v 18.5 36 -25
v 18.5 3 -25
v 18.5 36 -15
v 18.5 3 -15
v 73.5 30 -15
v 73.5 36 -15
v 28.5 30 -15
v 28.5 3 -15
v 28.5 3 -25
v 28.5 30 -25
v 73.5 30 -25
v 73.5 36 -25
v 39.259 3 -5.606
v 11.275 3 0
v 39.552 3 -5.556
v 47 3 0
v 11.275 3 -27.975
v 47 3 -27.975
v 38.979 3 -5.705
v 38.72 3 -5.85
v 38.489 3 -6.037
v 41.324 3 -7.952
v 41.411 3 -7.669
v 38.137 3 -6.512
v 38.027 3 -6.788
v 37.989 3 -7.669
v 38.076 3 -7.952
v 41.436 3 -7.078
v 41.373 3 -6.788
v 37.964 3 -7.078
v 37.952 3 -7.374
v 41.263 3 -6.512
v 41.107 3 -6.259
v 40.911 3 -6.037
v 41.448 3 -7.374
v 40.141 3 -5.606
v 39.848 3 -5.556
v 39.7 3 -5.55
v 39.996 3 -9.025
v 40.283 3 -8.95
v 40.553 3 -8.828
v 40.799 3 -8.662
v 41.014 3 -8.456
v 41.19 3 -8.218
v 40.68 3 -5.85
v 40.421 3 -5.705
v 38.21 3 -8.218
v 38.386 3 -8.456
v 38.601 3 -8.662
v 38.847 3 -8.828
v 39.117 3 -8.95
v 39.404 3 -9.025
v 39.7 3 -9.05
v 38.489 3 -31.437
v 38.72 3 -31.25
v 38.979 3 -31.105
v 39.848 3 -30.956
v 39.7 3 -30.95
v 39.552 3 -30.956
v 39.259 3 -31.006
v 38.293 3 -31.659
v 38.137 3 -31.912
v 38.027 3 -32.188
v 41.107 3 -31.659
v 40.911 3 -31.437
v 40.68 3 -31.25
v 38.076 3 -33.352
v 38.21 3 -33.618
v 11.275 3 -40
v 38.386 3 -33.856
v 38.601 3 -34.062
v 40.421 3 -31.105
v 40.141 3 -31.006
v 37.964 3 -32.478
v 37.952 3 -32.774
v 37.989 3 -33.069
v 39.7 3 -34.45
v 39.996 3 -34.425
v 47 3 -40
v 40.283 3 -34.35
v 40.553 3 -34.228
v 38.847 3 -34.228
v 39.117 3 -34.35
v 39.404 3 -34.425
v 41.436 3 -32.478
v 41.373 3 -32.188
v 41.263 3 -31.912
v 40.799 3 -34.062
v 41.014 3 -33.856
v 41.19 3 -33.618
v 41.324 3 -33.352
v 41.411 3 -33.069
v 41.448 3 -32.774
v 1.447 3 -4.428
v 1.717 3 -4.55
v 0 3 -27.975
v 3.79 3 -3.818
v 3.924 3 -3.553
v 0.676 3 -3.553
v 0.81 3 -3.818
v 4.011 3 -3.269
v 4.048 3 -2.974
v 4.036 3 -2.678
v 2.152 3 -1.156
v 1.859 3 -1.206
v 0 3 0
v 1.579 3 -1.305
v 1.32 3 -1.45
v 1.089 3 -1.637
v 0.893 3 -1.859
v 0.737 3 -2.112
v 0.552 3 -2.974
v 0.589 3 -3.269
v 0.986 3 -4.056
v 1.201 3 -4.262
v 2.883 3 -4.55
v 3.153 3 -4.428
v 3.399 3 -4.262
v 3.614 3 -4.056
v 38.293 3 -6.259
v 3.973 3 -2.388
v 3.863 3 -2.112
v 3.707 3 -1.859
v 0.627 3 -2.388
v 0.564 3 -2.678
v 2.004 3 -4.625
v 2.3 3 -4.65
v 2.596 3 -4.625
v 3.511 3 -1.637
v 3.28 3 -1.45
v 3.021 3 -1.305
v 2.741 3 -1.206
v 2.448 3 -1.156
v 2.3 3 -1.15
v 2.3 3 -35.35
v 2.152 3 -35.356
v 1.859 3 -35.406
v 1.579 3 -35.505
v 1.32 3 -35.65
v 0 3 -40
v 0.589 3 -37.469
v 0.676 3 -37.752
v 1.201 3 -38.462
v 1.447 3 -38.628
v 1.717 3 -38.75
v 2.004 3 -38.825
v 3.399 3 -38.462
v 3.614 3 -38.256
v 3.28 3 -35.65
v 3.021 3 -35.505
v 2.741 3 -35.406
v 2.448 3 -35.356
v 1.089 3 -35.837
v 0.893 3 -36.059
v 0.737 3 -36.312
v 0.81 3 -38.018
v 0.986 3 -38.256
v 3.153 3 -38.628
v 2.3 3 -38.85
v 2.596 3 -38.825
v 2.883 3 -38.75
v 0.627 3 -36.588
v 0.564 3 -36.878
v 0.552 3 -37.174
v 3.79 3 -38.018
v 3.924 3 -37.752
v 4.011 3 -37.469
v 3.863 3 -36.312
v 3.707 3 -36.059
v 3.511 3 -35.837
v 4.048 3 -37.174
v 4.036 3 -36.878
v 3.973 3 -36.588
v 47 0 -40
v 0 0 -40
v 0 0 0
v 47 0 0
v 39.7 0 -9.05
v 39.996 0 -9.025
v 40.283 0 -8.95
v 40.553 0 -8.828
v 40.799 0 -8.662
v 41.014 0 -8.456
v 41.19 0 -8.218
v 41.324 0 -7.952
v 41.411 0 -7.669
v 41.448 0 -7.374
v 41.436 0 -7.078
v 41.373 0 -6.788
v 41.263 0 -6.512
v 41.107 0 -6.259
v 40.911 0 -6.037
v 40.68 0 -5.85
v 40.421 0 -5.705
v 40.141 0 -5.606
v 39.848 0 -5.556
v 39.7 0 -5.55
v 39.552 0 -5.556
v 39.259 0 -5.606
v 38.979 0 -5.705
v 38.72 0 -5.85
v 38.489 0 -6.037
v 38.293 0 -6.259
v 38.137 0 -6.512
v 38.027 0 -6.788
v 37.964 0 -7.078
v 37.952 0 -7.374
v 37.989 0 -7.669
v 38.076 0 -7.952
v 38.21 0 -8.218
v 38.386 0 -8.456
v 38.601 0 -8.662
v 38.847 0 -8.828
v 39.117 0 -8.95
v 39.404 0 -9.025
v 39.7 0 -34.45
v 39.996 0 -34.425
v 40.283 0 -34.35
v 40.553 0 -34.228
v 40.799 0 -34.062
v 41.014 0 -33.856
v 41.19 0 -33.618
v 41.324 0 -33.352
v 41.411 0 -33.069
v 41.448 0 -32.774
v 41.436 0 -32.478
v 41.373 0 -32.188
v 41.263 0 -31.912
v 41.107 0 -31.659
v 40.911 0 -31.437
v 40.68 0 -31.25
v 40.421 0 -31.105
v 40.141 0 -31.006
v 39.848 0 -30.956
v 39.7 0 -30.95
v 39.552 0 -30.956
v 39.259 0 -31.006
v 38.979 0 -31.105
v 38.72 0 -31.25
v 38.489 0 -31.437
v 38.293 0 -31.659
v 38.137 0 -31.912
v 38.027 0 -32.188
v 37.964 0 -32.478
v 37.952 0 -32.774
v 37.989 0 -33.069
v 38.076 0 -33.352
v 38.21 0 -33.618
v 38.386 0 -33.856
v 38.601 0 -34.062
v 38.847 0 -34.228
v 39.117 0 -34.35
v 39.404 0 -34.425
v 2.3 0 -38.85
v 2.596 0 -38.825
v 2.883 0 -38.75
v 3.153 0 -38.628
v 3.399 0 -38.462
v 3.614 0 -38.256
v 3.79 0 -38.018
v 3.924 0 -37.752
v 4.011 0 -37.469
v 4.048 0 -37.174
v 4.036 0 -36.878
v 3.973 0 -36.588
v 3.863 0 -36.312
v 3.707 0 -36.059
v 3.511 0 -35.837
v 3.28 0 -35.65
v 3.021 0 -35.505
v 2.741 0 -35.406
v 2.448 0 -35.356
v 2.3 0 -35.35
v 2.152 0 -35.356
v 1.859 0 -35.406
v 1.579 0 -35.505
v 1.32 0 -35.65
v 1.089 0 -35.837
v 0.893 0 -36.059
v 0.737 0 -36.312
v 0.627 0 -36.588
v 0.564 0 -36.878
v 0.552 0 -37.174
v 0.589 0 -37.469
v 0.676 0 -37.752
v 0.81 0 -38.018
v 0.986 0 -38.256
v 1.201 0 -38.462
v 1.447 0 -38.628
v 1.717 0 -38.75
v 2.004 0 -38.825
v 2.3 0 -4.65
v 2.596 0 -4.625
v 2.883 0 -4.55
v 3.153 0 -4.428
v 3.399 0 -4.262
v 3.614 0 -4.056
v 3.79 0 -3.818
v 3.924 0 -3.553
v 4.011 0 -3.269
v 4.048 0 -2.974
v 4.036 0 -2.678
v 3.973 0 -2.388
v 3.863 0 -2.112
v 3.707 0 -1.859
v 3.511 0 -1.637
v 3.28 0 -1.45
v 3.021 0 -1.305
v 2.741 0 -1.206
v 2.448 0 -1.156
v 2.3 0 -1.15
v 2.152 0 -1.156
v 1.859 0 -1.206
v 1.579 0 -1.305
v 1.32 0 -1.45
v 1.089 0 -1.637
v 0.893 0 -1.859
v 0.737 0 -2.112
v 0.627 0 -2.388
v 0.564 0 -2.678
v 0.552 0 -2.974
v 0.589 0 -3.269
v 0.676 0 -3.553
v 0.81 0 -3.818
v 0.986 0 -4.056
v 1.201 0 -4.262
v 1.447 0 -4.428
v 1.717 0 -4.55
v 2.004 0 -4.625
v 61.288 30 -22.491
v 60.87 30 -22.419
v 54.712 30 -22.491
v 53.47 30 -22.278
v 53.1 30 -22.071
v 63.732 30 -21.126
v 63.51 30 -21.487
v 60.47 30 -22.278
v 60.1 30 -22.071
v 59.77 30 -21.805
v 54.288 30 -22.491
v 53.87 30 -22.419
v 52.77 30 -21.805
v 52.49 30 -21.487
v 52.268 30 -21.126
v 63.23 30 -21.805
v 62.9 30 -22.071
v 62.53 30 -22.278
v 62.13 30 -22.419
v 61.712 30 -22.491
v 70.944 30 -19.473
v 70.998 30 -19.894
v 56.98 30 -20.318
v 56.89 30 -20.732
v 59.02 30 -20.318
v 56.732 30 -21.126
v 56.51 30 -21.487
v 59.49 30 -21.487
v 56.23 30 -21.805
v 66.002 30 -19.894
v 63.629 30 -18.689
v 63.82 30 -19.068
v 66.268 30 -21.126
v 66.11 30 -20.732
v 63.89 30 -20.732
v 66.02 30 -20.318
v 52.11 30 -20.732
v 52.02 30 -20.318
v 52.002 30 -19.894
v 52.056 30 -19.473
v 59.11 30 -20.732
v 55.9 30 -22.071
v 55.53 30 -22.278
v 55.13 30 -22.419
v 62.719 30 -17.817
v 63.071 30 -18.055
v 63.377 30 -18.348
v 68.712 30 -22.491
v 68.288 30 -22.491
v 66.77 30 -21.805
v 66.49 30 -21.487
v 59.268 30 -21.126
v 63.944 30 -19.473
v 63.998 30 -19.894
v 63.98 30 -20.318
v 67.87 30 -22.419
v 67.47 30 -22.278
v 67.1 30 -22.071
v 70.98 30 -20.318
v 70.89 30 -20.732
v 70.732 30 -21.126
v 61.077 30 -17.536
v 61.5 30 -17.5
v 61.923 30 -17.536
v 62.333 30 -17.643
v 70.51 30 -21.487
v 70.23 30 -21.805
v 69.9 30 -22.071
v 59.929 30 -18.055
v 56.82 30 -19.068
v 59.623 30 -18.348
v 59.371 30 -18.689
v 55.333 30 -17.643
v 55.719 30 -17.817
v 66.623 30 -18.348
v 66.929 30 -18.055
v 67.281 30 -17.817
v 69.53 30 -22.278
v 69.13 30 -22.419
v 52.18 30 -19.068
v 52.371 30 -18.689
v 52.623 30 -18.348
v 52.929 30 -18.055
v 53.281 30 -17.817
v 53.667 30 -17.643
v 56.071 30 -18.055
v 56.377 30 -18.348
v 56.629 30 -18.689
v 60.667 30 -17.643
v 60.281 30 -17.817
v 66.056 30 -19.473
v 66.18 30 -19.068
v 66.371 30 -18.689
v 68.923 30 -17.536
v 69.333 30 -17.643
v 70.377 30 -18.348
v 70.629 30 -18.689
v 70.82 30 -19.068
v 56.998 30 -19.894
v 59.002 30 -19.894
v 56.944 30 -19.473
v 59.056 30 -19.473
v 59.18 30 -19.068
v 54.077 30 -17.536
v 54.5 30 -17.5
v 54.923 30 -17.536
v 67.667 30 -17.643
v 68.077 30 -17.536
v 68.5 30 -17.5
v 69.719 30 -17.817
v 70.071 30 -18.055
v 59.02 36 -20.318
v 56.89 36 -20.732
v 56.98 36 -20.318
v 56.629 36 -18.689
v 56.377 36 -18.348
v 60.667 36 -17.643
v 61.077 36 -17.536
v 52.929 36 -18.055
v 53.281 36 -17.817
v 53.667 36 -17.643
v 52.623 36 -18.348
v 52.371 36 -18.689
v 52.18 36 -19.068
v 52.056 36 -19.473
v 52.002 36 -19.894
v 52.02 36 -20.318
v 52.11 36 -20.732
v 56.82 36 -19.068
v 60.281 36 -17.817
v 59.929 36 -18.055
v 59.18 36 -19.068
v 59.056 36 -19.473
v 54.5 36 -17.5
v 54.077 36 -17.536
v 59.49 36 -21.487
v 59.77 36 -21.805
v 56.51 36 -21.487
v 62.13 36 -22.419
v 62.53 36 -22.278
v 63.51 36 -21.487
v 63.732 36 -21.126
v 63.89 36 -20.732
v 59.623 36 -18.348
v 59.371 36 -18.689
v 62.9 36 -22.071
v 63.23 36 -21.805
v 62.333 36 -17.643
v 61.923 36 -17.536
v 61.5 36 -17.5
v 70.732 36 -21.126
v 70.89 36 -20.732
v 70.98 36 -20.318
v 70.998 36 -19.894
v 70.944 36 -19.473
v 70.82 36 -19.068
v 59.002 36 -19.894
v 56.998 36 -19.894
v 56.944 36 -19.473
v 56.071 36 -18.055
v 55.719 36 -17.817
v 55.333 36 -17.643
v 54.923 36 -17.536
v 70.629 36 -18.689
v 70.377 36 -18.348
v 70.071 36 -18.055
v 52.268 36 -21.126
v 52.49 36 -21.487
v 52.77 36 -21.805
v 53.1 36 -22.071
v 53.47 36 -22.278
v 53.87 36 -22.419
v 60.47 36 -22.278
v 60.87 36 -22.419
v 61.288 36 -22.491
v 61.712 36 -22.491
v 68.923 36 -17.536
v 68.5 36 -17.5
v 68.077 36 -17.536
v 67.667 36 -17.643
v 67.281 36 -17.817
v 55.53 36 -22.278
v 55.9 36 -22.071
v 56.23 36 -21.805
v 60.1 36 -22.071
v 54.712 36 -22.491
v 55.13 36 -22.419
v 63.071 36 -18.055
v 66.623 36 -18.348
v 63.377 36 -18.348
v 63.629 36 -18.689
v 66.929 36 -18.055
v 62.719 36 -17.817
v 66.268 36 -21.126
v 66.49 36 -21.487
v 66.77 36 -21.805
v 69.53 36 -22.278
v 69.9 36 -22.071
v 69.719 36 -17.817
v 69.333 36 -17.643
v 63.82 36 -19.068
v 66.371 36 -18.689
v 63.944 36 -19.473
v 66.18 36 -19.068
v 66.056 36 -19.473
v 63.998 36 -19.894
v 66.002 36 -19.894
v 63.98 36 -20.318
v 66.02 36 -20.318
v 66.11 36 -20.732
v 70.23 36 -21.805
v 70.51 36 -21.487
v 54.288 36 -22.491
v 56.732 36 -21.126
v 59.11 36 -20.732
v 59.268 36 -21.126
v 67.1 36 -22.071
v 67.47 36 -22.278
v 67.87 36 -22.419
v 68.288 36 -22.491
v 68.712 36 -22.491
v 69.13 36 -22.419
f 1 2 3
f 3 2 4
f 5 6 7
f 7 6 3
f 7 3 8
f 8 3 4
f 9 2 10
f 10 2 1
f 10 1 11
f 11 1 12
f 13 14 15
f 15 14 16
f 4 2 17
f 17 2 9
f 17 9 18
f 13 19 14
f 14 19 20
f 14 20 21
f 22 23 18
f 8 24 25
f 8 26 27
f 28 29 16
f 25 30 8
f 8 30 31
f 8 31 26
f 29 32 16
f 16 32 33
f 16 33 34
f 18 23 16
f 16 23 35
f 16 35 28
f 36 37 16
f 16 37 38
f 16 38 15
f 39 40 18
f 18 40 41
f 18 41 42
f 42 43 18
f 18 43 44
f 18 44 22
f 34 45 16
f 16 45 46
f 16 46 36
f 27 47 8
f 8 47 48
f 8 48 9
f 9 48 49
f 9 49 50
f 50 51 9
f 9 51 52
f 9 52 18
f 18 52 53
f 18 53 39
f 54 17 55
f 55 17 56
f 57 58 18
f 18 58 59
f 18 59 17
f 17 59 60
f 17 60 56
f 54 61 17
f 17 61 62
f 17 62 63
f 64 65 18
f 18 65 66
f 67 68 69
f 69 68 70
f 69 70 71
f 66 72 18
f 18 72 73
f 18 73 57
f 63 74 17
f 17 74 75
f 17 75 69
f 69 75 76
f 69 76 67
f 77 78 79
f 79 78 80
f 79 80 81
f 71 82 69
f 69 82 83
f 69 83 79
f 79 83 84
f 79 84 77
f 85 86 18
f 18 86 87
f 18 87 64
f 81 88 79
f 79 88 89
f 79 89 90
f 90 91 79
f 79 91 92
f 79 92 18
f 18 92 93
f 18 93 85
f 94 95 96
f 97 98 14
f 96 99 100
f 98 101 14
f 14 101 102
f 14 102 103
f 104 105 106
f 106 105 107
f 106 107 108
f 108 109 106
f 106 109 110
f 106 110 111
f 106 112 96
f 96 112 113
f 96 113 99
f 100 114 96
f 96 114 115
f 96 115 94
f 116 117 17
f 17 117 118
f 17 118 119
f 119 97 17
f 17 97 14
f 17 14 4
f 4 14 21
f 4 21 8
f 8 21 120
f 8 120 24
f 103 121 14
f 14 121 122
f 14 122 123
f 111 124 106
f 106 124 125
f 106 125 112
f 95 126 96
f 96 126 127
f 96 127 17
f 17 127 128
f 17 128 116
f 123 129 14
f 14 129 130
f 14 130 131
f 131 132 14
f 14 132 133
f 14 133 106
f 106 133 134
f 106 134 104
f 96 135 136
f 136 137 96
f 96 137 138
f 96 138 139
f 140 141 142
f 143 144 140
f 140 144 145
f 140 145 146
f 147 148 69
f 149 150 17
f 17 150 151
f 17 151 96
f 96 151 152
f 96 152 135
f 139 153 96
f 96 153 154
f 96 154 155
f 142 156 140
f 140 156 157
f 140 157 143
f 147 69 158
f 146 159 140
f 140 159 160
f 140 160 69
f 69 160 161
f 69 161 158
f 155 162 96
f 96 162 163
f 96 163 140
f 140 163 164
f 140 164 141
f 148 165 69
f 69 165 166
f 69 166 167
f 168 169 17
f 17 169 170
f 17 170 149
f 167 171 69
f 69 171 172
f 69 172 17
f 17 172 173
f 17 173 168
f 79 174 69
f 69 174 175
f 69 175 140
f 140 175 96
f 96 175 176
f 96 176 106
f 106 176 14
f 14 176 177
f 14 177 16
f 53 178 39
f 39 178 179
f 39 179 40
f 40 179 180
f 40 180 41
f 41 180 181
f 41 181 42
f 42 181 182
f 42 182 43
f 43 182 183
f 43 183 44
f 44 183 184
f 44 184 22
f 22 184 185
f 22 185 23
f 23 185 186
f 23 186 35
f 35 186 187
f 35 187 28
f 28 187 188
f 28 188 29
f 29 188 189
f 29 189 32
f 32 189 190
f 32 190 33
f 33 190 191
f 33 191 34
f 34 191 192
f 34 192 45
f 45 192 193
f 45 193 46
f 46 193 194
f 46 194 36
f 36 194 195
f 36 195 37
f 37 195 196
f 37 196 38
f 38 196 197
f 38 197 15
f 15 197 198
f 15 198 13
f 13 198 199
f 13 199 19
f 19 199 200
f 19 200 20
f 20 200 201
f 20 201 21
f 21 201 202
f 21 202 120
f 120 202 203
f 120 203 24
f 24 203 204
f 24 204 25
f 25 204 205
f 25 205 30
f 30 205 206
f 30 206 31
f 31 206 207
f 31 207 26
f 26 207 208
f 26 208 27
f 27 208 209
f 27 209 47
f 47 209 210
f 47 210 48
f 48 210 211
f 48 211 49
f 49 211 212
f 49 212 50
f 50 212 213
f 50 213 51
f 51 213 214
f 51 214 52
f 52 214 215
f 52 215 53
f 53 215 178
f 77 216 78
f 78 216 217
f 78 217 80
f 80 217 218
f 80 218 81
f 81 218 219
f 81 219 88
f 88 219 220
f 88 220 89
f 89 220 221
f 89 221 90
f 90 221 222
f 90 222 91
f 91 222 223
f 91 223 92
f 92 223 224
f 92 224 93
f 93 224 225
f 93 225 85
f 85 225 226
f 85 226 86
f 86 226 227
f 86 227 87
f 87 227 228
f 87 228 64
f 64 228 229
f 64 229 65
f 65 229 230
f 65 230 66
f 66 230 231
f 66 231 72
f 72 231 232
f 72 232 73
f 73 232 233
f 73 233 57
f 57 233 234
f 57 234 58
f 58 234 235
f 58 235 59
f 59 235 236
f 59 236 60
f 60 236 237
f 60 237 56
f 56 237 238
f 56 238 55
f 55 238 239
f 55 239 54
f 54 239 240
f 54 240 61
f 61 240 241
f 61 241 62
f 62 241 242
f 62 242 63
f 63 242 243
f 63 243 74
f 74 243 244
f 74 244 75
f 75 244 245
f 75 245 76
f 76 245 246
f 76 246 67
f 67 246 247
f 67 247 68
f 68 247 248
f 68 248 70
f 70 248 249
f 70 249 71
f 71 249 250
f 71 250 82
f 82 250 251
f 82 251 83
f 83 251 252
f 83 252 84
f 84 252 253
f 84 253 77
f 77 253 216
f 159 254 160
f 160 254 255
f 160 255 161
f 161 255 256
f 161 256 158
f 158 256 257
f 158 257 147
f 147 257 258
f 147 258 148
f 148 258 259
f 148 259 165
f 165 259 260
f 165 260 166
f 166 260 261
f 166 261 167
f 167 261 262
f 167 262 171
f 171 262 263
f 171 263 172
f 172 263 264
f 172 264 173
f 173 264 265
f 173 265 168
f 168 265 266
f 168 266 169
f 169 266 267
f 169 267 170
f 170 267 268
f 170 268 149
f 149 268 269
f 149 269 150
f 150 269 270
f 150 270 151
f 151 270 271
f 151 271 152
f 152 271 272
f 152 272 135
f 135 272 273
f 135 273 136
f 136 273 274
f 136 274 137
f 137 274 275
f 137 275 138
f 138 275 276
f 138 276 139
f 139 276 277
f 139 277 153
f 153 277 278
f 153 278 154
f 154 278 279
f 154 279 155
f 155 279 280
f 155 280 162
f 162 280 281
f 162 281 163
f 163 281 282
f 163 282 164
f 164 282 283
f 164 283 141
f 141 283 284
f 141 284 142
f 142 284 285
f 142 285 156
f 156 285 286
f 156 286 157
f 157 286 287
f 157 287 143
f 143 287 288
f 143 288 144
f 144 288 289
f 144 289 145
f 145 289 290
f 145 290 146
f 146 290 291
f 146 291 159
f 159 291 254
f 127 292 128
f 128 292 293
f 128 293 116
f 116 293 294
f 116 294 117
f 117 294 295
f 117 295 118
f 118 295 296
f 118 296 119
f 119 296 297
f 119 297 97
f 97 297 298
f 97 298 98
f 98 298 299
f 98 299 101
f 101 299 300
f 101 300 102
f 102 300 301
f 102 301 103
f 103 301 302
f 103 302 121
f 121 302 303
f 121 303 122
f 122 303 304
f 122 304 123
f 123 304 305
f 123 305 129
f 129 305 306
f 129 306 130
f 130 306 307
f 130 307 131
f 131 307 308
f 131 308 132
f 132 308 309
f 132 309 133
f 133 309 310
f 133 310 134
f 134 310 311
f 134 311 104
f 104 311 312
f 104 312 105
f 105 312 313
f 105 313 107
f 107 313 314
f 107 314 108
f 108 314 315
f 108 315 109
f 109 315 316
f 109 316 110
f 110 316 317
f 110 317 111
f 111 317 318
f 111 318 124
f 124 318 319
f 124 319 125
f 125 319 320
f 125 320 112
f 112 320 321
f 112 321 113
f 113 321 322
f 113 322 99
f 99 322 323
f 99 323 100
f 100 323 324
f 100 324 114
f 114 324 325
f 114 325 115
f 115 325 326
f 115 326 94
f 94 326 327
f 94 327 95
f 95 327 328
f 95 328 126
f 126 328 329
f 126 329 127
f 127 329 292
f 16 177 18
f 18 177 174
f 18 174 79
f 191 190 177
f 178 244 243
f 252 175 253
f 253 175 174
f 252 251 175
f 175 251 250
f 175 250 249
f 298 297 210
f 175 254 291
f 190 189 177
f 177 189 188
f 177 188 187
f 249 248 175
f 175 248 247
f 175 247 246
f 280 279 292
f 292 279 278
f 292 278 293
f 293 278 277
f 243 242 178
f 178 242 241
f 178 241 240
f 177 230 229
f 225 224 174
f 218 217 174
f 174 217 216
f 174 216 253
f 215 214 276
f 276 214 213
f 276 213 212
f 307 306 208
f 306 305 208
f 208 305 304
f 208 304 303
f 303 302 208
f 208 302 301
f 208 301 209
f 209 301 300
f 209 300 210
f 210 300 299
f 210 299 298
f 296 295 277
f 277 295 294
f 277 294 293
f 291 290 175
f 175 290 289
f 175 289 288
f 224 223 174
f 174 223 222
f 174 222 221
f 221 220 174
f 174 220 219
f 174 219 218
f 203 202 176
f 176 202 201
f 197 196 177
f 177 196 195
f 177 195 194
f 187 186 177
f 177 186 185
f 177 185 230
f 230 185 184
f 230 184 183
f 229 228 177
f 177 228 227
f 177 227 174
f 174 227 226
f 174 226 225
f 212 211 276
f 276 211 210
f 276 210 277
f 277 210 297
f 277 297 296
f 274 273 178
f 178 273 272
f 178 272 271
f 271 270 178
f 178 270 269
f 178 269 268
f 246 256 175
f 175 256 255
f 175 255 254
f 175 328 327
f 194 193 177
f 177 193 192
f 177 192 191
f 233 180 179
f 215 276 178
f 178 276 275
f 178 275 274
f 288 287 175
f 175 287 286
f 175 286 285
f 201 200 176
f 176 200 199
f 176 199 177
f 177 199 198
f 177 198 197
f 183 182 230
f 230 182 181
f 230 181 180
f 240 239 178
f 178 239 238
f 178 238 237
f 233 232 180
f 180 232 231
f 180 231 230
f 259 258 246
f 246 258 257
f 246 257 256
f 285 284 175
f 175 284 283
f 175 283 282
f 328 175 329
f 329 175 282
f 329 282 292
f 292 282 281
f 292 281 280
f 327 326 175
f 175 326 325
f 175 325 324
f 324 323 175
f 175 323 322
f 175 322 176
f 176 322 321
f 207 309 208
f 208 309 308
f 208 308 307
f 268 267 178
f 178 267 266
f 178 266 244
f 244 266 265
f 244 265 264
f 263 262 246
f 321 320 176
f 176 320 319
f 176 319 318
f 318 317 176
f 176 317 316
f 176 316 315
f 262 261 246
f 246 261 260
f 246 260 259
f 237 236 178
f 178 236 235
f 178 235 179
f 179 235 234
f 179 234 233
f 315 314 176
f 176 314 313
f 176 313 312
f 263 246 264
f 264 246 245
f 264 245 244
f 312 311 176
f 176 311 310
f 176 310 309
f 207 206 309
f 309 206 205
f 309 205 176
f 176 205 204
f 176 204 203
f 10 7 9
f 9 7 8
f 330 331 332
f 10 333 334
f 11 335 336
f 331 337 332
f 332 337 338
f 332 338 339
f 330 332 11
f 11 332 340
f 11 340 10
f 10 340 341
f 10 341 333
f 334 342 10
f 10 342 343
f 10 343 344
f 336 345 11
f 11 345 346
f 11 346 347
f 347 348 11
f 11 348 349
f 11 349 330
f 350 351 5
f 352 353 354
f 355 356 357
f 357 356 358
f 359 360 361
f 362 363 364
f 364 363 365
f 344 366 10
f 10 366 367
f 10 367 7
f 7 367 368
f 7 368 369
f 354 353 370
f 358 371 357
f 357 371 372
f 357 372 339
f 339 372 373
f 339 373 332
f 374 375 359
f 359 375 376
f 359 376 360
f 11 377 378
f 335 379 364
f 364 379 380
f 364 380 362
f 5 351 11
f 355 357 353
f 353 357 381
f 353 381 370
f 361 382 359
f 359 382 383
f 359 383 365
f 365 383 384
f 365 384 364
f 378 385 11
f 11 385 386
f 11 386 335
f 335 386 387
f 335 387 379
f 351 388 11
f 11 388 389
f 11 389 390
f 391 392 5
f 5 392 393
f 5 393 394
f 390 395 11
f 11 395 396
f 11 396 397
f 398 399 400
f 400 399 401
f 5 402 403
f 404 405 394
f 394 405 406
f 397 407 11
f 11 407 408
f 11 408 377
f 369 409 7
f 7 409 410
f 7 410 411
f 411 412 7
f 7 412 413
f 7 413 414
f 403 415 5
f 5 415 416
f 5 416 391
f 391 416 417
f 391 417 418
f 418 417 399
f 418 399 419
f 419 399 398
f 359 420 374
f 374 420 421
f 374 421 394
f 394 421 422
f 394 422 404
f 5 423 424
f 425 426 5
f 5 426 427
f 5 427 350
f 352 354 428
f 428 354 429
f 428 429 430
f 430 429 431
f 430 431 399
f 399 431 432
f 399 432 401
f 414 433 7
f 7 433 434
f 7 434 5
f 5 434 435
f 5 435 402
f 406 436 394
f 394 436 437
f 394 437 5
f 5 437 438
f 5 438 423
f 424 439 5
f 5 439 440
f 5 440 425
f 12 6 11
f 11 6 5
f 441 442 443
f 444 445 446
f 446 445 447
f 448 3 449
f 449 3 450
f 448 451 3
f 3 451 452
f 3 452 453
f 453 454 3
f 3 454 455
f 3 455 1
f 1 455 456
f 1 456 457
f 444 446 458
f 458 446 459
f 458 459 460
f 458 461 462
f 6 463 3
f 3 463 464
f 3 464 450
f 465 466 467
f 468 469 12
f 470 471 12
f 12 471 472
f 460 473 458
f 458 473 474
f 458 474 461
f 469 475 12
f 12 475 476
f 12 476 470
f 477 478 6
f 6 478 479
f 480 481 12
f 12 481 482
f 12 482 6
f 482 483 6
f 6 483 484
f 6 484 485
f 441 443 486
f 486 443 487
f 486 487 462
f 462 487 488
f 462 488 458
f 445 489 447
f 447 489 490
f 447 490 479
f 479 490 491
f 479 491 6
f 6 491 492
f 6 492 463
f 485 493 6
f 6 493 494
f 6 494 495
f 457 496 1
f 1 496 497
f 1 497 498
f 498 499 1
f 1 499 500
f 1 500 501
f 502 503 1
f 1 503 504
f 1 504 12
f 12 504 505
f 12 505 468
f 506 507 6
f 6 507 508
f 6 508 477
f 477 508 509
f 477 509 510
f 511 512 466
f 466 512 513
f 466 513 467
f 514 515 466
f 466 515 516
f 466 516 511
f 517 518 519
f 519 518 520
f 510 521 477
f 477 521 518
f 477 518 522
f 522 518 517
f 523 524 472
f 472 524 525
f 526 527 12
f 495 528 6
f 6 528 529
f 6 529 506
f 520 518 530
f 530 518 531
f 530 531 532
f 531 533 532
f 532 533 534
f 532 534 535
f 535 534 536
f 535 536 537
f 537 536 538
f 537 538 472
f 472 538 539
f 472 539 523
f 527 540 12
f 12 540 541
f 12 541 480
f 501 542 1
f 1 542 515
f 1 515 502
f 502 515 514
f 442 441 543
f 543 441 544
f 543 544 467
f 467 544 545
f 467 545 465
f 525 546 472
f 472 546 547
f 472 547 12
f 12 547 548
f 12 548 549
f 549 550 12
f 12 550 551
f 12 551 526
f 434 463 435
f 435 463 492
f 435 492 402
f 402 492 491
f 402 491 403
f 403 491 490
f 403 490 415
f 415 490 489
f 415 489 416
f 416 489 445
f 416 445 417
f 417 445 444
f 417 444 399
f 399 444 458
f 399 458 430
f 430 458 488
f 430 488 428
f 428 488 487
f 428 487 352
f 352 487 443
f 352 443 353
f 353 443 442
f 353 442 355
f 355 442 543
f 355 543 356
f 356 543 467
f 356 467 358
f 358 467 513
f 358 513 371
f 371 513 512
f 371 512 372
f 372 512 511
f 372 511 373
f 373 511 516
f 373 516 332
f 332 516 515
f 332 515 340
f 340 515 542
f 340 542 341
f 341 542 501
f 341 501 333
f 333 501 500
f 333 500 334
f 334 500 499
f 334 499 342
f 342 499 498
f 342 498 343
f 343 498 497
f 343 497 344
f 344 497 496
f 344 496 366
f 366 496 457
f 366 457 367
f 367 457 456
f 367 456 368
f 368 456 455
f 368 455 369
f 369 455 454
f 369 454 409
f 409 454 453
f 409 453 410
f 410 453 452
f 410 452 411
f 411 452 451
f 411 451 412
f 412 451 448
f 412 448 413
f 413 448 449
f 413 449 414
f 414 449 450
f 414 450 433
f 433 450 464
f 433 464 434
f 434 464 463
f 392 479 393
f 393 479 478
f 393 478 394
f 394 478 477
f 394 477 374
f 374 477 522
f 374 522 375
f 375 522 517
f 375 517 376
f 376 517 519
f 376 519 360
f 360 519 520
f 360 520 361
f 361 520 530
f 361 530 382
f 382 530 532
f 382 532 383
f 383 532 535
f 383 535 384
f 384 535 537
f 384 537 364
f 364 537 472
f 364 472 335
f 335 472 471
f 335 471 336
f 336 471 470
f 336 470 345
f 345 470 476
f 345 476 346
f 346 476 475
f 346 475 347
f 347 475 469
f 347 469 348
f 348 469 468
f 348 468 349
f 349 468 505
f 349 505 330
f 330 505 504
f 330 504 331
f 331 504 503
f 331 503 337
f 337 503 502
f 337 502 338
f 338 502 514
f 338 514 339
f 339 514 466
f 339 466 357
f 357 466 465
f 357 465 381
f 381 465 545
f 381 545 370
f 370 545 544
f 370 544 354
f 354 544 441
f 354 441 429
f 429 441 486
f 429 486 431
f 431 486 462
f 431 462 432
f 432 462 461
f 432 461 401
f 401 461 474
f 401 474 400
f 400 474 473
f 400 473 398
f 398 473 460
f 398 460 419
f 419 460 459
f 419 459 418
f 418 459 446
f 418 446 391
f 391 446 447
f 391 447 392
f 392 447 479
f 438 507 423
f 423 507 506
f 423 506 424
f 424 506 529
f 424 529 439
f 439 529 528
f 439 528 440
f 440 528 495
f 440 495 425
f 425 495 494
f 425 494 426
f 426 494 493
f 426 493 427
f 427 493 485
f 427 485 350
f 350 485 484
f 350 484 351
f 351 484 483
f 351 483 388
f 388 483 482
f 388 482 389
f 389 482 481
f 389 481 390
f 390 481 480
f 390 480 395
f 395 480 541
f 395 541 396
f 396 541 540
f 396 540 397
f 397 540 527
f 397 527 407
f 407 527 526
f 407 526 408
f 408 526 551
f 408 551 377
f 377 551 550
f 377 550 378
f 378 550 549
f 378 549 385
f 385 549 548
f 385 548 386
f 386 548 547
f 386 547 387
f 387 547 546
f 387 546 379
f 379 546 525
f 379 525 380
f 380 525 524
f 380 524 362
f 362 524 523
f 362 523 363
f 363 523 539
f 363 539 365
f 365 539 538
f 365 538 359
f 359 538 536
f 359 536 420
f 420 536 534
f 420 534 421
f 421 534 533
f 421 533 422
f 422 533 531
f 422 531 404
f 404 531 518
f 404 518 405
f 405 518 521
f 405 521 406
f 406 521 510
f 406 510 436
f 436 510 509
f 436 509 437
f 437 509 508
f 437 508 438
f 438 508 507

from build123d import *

# Parameters (mm, degrees)
SKETCH1_W           = 47
SKETCH1_H           = 40
SKETCH1_R           = 1.75
BOSS_EXTRUDE1_DEPTH = 3
SKETCH2_W           = 10
SKETCH2_H           = 10
BOSS_EXTRUDE3_DEPTH = 27
SKETCH3_W           = 45
SKETCH3_H           = 10
SKETCH3_W_2         = 10
BOSS_EXTRUDE4_DEPTH = 6
SKETCH4_W           = 55
SKETCH4_H           = 10
CUT_EXTRUDE1_DEPTH  = 6
SKETCH5_W           = 55
SKETCH5_H           = 10
BOSS_EXTRUDE5_DEPTH = 6
SKETCH6_R           = 2.5
CUT_EXTRUDE2_DEPTH  = 92.094730912


with BuildPart() as part:
    # Sketch1 → Boss-Extrude1 (new body)
    with BuildSketch(Plane(origin=(0, 0, 0), x_dir=(1, 0, 0), z_dir=(0, 1, 0))):
        with Locations((23.5, 20)):
            Rectangle(SKETCH1_W, SKETCH1_H)
        with Locations(Location((2.3, 2.9, 0), (0, 0, 270))):
            Circle(SKETCH1_R, mode=Mode.SUBTRACT)
        with Locations(Location((2.3, 37.1, 0), (0, 0, 270))):
            Circle(SKETCH1_R, mode=Mode.SUBTRACT)
        with Locations(Location((39.7, 32.7, 0), (0, 0, 270))):
            Circle(SKETCH1_R, mode=Mode.SUBTRACT)
        with Locations(Location((39.7, 7.3, 0), (0, 0, 270))):
            Circle(SKETCH1_R, mode=Mode.SUBTRACT)
    extrude(amount=BOSS_EXTRUDE1_DEPTH)

    # Sketch2 → Boss-Extrude3 (add)
    with BuildSketch(Plane(origin=(0, 3, 0), x_dir=(1, 0, 0), z_dir=(0, 1, 0))):
        with Locations((23.5, 20)):
            Rectangle(SKETCH2_W, SKETCH2_H)
    extrude(amount=BOSS_EXTRUDE3_DEPTH)

    # Sketch3 → Boss-Extrude4 (add)
    with BuildSketch(Plane(origin=(0, 30, 0), x_dir=(1, 0, 0), z_dir=(0, 1, 0))):
        with Locations((51, 20)):
            Rectangle(SKETCH3_W, SKETCH3_H)
        with Locations((23.5, 20)):
            Rectangle(SKETCH3_W_2, SKETCH3_H)
    extrude(amount=BOSS_EXTRUDE4_DEPTH)

    # Sketch4 → Cut-Extrude1 (cut)
    with BuildSketch(Plane(origin=(0, 36, 0), x_dir=(1, 0, 0), z_dir=(0, 1, 0))):
        with Locations((46, 20)):
            Rectangle(SKETCH4_W, SKETCH4_H)
    extrude(amount=-CUT_EXTRUDE1_DEPTH, mode=Mode.SUBTRACT)

    # Sketch5 → Boss-Extrude5 (add)
    with BuildSketch(Plane(origin=(0, 30, 0), x_dir=(1, 0, 0), z_dir=(0, 1, 0))):
        with Locations((46, 20)):
            Rectangle(SKETCH5_W, SKETCH5_H)
    extrude(amount=BOSS_EXTRUDE5_DEPTH)

    # Sketch6 → Cut-Extrude2 (cut, through all)
    with BuildSketch(Plane(origin=(0, 36, 0), x_dir=(1, 0, 0), z_dir=(0, 1, 0))):
        with Locations(Location((68.5, 20, 0), (0, 0, 270))):
            Circle(SKETCH6_R)
        with Locations(Location((61.5, 20, 0), (0, 0, 270))):
            Circle(SKETCH6_R)
        with Locations(Location((54.5, 20, 0), (0, 0, 270))):
            Circle(SKETCH6_R)
    extrude(amount=-CUT_EXTRUDE2_DEPTH, mode=Mode.SUBTRACT)


solid = part.part
